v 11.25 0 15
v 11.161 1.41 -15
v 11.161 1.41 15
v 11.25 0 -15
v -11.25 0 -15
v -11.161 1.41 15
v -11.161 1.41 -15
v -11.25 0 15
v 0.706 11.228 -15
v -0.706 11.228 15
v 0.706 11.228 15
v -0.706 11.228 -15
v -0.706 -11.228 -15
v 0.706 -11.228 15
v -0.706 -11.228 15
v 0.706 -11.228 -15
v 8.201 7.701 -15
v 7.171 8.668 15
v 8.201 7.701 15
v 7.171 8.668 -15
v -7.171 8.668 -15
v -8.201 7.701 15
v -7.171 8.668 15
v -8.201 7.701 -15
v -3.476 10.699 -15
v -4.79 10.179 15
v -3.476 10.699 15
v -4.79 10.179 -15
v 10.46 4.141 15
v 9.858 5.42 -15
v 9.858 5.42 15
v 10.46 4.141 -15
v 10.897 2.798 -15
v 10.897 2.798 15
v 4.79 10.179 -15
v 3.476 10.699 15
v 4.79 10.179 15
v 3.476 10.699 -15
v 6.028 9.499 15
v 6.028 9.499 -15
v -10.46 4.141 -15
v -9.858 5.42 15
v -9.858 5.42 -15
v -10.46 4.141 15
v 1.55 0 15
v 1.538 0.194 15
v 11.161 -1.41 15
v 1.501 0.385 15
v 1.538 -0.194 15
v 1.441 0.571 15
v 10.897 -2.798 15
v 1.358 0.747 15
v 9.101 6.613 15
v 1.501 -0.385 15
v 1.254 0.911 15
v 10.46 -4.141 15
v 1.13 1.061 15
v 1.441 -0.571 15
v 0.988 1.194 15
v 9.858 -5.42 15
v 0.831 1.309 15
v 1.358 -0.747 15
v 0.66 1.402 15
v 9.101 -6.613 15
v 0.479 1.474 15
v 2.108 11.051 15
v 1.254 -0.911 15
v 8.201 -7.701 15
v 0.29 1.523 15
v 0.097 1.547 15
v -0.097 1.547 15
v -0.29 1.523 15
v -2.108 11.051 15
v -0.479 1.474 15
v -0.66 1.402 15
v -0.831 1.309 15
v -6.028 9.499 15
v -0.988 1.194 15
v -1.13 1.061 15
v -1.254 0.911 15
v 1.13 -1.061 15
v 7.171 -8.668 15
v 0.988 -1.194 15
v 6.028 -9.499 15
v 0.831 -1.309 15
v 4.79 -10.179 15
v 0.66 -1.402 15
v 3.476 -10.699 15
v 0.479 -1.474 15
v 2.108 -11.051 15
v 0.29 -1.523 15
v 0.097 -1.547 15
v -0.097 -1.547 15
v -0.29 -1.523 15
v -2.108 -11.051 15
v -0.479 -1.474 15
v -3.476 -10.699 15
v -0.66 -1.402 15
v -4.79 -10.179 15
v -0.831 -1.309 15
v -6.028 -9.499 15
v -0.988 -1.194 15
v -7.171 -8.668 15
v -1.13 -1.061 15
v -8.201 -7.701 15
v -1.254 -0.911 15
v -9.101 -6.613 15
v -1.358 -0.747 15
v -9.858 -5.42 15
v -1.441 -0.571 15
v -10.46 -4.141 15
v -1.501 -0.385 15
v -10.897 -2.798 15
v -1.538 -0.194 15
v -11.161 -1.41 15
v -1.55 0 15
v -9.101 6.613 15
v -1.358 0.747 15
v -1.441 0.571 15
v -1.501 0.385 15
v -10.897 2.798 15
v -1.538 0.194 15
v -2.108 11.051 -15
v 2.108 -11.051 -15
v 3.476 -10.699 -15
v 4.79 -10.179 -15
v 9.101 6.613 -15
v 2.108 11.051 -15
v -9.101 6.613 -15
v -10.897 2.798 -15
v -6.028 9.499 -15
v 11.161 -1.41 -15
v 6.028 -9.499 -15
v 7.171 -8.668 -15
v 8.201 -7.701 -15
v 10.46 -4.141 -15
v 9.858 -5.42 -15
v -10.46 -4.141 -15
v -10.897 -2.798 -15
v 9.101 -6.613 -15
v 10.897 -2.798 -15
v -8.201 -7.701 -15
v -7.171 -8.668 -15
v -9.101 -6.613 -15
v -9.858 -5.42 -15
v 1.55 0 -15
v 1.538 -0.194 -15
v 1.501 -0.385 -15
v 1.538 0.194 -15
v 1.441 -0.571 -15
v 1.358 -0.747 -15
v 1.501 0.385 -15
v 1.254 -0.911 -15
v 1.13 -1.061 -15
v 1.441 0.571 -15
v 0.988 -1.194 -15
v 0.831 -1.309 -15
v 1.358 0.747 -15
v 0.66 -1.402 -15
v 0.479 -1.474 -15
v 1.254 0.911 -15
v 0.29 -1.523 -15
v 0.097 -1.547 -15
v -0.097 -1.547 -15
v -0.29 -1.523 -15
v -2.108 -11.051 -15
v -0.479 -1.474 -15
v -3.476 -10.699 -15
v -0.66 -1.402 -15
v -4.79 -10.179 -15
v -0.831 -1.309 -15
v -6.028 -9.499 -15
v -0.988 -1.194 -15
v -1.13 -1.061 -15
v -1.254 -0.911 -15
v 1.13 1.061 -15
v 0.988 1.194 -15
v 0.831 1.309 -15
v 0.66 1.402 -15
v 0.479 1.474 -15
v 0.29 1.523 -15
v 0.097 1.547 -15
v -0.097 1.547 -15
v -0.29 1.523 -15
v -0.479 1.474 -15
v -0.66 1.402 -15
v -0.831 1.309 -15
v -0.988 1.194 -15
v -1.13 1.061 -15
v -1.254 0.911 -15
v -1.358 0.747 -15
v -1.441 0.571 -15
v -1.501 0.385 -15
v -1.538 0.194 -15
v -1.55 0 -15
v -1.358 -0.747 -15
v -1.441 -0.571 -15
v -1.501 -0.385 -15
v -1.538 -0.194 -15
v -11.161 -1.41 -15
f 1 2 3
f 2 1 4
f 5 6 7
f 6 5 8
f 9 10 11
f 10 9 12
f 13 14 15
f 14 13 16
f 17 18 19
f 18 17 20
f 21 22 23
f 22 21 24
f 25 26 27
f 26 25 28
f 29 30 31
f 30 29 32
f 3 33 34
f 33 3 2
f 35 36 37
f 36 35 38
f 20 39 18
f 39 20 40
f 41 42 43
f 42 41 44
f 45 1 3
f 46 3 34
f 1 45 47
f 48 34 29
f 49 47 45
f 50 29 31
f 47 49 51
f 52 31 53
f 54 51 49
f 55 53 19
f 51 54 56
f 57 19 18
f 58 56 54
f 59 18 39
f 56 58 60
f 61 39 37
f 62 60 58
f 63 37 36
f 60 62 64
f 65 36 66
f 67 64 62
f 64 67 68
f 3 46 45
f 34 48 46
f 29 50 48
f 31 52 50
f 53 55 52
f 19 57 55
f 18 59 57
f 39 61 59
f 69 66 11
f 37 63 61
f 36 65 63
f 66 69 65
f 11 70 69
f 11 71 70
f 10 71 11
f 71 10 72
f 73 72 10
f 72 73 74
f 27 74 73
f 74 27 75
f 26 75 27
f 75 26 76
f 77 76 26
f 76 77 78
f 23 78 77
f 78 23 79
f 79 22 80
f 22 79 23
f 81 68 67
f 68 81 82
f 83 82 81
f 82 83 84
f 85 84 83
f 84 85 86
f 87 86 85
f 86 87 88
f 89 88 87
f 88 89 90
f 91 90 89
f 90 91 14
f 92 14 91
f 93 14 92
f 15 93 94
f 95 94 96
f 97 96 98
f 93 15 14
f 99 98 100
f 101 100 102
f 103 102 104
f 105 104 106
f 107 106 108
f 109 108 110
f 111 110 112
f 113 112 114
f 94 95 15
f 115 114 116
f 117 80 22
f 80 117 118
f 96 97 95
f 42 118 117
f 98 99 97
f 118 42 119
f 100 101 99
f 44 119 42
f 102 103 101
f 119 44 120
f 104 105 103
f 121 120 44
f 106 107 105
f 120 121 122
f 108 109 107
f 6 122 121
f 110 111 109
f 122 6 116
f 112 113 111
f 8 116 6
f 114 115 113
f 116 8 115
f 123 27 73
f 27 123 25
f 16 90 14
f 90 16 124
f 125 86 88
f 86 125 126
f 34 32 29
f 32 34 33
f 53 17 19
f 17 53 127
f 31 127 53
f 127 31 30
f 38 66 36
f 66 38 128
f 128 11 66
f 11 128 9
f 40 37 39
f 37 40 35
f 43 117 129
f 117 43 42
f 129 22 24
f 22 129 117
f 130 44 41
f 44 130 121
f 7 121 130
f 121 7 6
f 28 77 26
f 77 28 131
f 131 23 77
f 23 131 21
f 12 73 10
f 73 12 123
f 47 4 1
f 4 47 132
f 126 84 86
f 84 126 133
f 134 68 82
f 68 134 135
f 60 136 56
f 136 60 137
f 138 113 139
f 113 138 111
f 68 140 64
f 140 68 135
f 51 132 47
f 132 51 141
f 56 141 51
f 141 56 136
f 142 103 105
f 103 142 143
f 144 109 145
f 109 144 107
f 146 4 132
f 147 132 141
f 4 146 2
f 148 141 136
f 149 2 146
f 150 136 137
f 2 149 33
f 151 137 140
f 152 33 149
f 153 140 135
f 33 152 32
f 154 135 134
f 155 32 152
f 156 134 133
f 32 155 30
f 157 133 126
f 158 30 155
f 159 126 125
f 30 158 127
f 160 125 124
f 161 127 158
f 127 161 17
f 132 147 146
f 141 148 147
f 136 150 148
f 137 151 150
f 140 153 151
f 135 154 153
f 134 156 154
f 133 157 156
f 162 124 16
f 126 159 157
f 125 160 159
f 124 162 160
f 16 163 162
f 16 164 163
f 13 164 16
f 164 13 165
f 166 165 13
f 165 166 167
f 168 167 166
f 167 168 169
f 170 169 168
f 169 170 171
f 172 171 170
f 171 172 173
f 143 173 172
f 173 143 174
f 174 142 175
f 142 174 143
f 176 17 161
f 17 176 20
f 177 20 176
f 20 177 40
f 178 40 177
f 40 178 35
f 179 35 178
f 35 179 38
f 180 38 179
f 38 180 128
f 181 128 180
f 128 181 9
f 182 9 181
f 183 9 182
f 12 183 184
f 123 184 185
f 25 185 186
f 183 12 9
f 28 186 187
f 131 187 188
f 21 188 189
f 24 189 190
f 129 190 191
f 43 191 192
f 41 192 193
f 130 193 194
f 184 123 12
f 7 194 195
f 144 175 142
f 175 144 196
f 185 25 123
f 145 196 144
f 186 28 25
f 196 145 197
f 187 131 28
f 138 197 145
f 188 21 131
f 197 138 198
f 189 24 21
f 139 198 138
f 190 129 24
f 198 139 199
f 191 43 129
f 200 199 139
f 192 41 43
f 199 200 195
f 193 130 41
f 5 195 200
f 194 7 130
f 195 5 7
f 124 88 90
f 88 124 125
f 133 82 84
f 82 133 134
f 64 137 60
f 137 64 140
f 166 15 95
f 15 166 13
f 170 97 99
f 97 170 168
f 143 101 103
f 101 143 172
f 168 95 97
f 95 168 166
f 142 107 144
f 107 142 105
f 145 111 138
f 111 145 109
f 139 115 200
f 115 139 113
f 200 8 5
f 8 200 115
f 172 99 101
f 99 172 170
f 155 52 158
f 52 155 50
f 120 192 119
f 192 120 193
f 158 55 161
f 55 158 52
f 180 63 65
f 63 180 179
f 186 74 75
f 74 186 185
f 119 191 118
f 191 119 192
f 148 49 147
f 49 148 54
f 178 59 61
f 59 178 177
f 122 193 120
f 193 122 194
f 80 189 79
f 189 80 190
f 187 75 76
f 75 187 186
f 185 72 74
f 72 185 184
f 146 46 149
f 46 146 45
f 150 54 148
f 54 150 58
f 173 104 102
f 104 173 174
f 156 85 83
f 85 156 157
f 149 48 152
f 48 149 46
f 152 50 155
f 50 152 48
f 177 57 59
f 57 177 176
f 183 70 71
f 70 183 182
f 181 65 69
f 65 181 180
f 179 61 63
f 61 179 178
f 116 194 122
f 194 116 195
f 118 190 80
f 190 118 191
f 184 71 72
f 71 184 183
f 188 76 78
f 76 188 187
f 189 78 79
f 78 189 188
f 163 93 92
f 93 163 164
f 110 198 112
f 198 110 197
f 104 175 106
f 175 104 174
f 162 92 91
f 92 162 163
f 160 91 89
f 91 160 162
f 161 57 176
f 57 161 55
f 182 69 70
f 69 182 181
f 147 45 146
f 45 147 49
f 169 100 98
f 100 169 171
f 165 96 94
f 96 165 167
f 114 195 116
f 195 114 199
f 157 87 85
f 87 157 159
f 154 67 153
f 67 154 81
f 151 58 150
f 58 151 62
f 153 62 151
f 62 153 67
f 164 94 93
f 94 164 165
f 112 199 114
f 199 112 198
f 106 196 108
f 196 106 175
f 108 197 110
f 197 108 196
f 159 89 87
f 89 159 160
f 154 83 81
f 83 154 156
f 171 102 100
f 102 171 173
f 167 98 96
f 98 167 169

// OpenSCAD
$fn = 50;


difference() {
	union() {
		translate(v = [0, 0, -15.0000000000]) {
			cylinder(h = 30, r = 11.2500000000);
		}
	}
	union() {
		translate(v = [0, 0, -100.0000000000]) {
			cylinder(h = 200, r = 1.5500000000);
		}
	}
}
